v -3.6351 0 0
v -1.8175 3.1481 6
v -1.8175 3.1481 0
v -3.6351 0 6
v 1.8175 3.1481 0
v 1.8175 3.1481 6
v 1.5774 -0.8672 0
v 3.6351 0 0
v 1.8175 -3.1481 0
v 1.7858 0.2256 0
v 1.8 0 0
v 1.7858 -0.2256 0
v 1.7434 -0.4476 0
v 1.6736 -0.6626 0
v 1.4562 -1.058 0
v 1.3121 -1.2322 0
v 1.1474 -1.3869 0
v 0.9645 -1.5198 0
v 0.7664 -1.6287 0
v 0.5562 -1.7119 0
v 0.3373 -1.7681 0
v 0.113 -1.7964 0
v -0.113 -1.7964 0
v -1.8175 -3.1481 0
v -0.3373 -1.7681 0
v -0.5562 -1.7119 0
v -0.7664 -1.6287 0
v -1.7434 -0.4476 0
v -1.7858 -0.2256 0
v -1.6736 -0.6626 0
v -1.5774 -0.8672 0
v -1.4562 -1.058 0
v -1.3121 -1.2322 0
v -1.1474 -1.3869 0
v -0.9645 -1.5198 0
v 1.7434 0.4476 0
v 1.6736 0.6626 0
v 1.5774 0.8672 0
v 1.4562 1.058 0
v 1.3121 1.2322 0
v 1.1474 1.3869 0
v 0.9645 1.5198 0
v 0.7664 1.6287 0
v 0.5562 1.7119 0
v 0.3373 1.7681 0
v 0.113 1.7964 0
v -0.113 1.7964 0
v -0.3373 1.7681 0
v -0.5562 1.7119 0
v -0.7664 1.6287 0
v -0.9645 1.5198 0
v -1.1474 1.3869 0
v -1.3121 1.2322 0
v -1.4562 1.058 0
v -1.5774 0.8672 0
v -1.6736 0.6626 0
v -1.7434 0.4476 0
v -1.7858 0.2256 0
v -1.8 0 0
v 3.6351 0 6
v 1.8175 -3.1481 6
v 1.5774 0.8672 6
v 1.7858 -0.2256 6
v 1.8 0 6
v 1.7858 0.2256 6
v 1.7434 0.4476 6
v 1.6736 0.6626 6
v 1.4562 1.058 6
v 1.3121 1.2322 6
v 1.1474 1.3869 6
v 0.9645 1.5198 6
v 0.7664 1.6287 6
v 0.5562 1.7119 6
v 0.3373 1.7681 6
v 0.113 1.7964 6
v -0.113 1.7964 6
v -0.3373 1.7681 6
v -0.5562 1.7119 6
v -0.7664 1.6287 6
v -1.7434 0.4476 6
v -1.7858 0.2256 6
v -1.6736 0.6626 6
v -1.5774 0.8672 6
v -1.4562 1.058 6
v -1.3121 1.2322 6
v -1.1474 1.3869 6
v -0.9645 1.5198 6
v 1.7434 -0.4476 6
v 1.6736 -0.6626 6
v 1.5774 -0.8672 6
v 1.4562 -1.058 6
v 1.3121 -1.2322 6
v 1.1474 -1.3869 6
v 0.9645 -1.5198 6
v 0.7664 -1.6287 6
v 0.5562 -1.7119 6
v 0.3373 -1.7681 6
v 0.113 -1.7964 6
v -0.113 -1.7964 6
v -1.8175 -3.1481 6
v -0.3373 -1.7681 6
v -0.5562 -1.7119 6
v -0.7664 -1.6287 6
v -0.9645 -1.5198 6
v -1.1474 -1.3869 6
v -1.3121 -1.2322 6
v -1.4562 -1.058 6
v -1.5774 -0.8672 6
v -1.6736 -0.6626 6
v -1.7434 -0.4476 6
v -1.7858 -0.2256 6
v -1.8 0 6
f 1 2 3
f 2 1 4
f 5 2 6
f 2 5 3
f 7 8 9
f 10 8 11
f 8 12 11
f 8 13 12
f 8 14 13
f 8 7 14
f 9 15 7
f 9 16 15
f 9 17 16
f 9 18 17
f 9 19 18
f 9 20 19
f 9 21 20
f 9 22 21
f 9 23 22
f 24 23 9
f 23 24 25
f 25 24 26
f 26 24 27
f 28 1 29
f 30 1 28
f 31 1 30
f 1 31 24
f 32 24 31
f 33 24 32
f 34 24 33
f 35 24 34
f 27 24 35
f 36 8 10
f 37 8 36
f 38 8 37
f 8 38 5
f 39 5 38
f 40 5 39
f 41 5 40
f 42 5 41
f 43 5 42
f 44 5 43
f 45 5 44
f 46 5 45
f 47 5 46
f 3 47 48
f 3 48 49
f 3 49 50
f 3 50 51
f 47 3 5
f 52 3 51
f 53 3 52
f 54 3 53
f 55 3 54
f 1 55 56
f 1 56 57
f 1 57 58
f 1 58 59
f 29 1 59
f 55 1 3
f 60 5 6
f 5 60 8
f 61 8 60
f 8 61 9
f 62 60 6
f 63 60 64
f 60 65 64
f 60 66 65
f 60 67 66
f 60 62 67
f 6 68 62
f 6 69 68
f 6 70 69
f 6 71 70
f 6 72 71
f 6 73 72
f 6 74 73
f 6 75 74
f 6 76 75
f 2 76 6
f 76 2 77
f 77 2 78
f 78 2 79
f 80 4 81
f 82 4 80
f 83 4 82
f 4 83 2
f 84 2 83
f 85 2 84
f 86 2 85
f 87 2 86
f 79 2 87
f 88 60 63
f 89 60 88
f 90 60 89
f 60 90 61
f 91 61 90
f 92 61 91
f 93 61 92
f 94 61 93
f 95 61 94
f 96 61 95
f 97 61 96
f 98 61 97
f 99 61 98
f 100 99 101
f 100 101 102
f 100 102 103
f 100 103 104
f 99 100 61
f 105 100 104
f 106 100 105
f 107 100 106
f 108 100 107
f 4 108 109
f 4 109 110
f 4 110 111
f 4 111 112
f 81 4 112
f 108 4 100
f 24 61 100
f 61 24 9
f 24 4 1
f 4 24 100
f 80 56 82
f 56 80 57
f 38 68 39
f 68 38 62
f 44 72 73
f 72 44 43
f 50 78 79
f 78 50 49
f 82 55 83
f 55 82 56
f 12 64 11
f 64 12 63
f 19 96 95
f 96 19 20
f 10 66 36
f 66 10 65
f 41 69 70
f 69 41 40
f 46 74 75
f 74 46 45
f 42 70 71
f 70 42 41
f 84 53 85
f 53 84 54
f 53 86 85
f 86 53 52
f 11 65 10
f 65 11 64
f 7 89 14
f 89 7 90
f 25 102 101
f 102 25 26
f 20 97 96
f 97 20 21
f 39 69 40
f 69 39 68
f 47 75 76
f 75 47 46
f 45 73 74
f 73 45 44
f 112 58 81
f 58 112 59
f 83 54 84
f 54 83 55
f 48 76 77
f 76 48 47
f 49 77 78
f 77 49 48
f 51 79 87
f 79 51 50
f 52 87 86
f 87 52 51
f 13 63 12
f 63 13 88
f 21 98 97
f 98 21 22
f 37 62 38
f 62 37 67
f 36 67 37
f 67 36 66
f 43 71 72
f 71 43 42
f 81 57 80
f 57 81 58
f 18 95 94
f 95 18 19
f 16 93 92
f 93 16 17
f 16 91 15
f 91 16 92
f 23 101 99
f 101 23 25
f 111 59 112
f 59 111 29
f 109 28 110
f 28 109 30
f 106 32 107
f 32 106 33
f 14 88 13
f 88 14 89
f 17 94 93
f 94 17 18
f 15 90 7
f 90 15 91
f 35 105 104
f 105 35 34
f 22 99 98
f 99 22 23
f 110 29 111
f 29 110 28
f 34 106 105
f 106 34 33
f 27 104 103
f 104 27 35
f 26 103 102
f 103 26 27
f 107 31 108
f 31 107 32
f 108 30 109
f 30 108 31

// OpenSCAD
$fn = 50;


difference() {
	union() {
		translate(v = [0, 0, 0]) {
			rotate(a = [0, 0, 0]) {
				translate(v = [0, 0, 0]) {
					rotate(a = [0, 0, 0]) {
						linear_extrude(height = 6) {
							polygon(points = [[3.6351000000, 0.0000000000], [1.8175500000, 3.1480889453], [-1.8175500000, 3.1480889453], [-3.6351000000, 0.0000000000], [-1.8175500000, -3.1480889453], [1.8175500000, -3.1480889453]]);
						}
					}
				}
			}
		}
	}
	union() {
		translate(v = [0, 0, 0]) {
			rotate(a = [0, 0, 0]) {
				cylinder(h = 6, r = 1.8000000000);
			}
		}
	}
}
